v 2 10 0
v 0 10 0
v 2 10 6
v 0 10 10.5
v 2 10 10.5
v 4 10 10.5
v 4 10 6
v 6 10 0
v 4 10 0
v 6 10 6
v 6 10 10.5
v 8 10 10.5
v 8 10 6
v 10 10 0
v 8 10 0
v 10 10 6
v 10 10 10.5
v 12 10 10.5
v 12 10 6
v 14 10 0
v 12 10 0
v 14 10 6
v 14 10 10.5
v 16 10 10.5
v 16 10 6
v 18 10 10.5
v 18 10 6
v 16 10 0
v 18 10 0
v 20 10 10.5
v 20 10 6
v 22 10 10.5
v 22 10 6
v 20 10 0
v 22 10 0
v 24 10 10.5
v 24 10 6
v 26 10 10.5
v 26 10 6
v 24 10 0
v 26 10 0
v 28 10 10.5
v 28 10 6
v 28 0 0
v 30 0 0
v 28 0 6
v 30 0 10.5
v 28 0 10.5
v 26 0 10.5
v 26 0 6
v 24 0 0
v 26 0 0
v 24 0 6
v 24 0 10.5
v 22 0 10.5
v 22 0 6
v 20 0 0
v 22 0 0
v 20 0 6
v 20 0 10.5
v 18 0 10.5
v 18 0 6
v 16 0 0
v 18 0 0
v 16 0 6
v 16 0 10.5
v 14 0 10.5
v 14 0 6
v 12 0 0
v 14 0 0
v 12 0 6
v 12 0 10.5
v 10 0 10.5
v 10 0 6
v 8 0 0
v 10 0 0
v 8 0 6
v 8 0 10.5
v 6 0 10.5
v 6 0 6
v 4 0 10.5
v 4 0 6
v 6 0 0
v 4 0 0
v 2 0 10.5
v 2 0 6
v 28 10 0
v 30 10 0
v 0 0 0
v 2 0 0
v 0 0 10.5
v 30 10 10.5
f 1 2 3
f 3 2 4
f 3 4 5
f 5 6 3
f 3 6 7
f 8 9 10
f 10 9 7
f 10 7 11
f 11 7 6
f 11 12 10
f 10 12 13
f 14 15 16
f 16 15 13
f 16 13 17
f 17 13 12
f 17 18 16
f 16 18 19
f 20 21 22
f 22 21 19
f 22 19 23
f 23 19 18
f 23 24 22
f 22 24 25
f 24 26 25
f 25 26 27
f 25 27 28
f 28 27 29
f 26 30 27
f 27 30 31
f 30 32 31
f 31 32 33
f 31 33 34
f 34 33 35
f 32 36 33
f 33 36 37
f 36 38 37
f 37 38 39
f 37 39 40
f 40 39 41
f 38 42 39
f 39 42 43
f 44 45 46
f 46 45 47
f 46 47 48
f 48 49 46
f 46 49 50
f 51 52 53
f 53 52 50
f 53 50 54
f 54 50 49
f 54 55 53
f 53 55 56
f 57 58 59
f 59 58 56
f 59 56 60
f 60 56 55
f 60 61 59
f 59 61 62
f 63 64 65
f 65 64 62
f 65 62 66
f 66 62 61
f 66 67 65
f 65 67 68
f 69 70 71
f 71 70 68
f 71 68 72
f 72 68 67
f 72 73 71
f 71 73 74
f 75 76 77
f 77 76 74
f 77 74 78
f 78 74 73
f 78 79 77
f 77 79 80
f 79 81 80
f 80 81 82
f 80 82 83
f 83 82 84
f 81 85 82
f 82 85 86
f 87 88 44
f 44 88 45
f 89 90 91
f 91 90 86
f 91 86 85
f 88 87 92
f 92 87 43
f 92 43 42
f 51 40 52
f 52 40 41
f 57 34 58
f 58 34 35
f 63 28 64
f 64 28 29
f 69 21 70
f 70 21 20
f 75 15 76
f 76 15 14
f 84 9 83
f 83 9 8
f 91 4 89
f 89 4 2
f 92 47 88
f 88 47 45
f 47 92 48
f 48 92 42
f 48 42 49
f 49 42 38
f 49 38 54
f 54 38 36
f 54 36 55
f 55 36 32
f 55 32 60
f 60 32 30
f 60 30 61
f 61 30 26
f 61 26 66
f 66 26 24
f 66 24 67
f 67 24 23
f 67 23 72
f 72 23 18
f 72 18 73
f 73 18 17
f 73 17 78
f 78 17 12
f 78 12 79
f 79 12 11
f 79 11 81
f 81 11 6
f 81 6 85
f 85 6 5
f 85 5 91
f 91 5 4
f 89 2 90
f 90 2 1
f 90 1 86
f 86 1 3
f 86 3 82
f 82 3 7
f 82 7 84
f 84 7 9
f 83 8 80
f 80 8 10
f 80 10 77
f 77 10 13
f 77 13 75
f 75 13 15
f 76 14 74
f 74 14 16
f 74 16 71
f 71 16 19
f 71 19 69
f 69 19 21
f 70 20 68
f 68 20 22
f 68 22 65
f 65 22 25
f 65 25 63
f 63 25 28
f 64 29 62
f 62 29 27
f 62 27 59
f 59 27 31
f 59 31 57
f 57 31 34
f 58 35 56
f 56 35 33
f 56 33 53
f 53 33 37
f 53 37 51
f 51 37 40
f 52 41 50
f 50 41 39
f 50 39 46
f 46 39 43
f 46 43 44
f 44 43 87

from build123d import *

# Parameters (mm, degrees)
SKETCH1_W           = 30
SKETCH1_H           = 10
BOSS_EXTRUDE1_DEPTH = 10.5
SKETCH3_W           = 2
SKETCH3_H           = 6
CUT_EXTRUDE1_DEPTH  = 34.320414163
LPATTERN1_COUNT     = 13
LPATTERN1_PITCH     = 2


with BuildPart() as part:
    # Sketch1 → Boss-Extrude1 (new body)
    with BuildSketch(Plane.XY):
        with Locations((15, 5)):
            Rectangle(SKETCH1_W, SKETCH1_H)
    extrude(amount=BOSS_EXTRUDE1_DEPTH)

    # Sketch3 → Cut-Extrude1 (cut, symmetric)
    with BuildSketch(Plane.XZ):
        with Locations((3, 3)):
            Rectangle(SKETCH3_W, SKETCH3_H)
    cut_extrude1 = extrude(amount=CUT_EXTRUDE1_DEPTH, both=True, mode=Mode.SUBTRACT)

    # LPattern1: Cut-Extrude1 ×13, 6 skipped
    with Locations(*[(i * LPATTERN1_PITCH, 0, 0) for i in range(1, LPATTERN1_COUNT) if i not in (1, 3, 5, 7, 9, 11)]):
        add(cut_extrude1, mode=Mode.SUBTRACT)


solid = part.part
